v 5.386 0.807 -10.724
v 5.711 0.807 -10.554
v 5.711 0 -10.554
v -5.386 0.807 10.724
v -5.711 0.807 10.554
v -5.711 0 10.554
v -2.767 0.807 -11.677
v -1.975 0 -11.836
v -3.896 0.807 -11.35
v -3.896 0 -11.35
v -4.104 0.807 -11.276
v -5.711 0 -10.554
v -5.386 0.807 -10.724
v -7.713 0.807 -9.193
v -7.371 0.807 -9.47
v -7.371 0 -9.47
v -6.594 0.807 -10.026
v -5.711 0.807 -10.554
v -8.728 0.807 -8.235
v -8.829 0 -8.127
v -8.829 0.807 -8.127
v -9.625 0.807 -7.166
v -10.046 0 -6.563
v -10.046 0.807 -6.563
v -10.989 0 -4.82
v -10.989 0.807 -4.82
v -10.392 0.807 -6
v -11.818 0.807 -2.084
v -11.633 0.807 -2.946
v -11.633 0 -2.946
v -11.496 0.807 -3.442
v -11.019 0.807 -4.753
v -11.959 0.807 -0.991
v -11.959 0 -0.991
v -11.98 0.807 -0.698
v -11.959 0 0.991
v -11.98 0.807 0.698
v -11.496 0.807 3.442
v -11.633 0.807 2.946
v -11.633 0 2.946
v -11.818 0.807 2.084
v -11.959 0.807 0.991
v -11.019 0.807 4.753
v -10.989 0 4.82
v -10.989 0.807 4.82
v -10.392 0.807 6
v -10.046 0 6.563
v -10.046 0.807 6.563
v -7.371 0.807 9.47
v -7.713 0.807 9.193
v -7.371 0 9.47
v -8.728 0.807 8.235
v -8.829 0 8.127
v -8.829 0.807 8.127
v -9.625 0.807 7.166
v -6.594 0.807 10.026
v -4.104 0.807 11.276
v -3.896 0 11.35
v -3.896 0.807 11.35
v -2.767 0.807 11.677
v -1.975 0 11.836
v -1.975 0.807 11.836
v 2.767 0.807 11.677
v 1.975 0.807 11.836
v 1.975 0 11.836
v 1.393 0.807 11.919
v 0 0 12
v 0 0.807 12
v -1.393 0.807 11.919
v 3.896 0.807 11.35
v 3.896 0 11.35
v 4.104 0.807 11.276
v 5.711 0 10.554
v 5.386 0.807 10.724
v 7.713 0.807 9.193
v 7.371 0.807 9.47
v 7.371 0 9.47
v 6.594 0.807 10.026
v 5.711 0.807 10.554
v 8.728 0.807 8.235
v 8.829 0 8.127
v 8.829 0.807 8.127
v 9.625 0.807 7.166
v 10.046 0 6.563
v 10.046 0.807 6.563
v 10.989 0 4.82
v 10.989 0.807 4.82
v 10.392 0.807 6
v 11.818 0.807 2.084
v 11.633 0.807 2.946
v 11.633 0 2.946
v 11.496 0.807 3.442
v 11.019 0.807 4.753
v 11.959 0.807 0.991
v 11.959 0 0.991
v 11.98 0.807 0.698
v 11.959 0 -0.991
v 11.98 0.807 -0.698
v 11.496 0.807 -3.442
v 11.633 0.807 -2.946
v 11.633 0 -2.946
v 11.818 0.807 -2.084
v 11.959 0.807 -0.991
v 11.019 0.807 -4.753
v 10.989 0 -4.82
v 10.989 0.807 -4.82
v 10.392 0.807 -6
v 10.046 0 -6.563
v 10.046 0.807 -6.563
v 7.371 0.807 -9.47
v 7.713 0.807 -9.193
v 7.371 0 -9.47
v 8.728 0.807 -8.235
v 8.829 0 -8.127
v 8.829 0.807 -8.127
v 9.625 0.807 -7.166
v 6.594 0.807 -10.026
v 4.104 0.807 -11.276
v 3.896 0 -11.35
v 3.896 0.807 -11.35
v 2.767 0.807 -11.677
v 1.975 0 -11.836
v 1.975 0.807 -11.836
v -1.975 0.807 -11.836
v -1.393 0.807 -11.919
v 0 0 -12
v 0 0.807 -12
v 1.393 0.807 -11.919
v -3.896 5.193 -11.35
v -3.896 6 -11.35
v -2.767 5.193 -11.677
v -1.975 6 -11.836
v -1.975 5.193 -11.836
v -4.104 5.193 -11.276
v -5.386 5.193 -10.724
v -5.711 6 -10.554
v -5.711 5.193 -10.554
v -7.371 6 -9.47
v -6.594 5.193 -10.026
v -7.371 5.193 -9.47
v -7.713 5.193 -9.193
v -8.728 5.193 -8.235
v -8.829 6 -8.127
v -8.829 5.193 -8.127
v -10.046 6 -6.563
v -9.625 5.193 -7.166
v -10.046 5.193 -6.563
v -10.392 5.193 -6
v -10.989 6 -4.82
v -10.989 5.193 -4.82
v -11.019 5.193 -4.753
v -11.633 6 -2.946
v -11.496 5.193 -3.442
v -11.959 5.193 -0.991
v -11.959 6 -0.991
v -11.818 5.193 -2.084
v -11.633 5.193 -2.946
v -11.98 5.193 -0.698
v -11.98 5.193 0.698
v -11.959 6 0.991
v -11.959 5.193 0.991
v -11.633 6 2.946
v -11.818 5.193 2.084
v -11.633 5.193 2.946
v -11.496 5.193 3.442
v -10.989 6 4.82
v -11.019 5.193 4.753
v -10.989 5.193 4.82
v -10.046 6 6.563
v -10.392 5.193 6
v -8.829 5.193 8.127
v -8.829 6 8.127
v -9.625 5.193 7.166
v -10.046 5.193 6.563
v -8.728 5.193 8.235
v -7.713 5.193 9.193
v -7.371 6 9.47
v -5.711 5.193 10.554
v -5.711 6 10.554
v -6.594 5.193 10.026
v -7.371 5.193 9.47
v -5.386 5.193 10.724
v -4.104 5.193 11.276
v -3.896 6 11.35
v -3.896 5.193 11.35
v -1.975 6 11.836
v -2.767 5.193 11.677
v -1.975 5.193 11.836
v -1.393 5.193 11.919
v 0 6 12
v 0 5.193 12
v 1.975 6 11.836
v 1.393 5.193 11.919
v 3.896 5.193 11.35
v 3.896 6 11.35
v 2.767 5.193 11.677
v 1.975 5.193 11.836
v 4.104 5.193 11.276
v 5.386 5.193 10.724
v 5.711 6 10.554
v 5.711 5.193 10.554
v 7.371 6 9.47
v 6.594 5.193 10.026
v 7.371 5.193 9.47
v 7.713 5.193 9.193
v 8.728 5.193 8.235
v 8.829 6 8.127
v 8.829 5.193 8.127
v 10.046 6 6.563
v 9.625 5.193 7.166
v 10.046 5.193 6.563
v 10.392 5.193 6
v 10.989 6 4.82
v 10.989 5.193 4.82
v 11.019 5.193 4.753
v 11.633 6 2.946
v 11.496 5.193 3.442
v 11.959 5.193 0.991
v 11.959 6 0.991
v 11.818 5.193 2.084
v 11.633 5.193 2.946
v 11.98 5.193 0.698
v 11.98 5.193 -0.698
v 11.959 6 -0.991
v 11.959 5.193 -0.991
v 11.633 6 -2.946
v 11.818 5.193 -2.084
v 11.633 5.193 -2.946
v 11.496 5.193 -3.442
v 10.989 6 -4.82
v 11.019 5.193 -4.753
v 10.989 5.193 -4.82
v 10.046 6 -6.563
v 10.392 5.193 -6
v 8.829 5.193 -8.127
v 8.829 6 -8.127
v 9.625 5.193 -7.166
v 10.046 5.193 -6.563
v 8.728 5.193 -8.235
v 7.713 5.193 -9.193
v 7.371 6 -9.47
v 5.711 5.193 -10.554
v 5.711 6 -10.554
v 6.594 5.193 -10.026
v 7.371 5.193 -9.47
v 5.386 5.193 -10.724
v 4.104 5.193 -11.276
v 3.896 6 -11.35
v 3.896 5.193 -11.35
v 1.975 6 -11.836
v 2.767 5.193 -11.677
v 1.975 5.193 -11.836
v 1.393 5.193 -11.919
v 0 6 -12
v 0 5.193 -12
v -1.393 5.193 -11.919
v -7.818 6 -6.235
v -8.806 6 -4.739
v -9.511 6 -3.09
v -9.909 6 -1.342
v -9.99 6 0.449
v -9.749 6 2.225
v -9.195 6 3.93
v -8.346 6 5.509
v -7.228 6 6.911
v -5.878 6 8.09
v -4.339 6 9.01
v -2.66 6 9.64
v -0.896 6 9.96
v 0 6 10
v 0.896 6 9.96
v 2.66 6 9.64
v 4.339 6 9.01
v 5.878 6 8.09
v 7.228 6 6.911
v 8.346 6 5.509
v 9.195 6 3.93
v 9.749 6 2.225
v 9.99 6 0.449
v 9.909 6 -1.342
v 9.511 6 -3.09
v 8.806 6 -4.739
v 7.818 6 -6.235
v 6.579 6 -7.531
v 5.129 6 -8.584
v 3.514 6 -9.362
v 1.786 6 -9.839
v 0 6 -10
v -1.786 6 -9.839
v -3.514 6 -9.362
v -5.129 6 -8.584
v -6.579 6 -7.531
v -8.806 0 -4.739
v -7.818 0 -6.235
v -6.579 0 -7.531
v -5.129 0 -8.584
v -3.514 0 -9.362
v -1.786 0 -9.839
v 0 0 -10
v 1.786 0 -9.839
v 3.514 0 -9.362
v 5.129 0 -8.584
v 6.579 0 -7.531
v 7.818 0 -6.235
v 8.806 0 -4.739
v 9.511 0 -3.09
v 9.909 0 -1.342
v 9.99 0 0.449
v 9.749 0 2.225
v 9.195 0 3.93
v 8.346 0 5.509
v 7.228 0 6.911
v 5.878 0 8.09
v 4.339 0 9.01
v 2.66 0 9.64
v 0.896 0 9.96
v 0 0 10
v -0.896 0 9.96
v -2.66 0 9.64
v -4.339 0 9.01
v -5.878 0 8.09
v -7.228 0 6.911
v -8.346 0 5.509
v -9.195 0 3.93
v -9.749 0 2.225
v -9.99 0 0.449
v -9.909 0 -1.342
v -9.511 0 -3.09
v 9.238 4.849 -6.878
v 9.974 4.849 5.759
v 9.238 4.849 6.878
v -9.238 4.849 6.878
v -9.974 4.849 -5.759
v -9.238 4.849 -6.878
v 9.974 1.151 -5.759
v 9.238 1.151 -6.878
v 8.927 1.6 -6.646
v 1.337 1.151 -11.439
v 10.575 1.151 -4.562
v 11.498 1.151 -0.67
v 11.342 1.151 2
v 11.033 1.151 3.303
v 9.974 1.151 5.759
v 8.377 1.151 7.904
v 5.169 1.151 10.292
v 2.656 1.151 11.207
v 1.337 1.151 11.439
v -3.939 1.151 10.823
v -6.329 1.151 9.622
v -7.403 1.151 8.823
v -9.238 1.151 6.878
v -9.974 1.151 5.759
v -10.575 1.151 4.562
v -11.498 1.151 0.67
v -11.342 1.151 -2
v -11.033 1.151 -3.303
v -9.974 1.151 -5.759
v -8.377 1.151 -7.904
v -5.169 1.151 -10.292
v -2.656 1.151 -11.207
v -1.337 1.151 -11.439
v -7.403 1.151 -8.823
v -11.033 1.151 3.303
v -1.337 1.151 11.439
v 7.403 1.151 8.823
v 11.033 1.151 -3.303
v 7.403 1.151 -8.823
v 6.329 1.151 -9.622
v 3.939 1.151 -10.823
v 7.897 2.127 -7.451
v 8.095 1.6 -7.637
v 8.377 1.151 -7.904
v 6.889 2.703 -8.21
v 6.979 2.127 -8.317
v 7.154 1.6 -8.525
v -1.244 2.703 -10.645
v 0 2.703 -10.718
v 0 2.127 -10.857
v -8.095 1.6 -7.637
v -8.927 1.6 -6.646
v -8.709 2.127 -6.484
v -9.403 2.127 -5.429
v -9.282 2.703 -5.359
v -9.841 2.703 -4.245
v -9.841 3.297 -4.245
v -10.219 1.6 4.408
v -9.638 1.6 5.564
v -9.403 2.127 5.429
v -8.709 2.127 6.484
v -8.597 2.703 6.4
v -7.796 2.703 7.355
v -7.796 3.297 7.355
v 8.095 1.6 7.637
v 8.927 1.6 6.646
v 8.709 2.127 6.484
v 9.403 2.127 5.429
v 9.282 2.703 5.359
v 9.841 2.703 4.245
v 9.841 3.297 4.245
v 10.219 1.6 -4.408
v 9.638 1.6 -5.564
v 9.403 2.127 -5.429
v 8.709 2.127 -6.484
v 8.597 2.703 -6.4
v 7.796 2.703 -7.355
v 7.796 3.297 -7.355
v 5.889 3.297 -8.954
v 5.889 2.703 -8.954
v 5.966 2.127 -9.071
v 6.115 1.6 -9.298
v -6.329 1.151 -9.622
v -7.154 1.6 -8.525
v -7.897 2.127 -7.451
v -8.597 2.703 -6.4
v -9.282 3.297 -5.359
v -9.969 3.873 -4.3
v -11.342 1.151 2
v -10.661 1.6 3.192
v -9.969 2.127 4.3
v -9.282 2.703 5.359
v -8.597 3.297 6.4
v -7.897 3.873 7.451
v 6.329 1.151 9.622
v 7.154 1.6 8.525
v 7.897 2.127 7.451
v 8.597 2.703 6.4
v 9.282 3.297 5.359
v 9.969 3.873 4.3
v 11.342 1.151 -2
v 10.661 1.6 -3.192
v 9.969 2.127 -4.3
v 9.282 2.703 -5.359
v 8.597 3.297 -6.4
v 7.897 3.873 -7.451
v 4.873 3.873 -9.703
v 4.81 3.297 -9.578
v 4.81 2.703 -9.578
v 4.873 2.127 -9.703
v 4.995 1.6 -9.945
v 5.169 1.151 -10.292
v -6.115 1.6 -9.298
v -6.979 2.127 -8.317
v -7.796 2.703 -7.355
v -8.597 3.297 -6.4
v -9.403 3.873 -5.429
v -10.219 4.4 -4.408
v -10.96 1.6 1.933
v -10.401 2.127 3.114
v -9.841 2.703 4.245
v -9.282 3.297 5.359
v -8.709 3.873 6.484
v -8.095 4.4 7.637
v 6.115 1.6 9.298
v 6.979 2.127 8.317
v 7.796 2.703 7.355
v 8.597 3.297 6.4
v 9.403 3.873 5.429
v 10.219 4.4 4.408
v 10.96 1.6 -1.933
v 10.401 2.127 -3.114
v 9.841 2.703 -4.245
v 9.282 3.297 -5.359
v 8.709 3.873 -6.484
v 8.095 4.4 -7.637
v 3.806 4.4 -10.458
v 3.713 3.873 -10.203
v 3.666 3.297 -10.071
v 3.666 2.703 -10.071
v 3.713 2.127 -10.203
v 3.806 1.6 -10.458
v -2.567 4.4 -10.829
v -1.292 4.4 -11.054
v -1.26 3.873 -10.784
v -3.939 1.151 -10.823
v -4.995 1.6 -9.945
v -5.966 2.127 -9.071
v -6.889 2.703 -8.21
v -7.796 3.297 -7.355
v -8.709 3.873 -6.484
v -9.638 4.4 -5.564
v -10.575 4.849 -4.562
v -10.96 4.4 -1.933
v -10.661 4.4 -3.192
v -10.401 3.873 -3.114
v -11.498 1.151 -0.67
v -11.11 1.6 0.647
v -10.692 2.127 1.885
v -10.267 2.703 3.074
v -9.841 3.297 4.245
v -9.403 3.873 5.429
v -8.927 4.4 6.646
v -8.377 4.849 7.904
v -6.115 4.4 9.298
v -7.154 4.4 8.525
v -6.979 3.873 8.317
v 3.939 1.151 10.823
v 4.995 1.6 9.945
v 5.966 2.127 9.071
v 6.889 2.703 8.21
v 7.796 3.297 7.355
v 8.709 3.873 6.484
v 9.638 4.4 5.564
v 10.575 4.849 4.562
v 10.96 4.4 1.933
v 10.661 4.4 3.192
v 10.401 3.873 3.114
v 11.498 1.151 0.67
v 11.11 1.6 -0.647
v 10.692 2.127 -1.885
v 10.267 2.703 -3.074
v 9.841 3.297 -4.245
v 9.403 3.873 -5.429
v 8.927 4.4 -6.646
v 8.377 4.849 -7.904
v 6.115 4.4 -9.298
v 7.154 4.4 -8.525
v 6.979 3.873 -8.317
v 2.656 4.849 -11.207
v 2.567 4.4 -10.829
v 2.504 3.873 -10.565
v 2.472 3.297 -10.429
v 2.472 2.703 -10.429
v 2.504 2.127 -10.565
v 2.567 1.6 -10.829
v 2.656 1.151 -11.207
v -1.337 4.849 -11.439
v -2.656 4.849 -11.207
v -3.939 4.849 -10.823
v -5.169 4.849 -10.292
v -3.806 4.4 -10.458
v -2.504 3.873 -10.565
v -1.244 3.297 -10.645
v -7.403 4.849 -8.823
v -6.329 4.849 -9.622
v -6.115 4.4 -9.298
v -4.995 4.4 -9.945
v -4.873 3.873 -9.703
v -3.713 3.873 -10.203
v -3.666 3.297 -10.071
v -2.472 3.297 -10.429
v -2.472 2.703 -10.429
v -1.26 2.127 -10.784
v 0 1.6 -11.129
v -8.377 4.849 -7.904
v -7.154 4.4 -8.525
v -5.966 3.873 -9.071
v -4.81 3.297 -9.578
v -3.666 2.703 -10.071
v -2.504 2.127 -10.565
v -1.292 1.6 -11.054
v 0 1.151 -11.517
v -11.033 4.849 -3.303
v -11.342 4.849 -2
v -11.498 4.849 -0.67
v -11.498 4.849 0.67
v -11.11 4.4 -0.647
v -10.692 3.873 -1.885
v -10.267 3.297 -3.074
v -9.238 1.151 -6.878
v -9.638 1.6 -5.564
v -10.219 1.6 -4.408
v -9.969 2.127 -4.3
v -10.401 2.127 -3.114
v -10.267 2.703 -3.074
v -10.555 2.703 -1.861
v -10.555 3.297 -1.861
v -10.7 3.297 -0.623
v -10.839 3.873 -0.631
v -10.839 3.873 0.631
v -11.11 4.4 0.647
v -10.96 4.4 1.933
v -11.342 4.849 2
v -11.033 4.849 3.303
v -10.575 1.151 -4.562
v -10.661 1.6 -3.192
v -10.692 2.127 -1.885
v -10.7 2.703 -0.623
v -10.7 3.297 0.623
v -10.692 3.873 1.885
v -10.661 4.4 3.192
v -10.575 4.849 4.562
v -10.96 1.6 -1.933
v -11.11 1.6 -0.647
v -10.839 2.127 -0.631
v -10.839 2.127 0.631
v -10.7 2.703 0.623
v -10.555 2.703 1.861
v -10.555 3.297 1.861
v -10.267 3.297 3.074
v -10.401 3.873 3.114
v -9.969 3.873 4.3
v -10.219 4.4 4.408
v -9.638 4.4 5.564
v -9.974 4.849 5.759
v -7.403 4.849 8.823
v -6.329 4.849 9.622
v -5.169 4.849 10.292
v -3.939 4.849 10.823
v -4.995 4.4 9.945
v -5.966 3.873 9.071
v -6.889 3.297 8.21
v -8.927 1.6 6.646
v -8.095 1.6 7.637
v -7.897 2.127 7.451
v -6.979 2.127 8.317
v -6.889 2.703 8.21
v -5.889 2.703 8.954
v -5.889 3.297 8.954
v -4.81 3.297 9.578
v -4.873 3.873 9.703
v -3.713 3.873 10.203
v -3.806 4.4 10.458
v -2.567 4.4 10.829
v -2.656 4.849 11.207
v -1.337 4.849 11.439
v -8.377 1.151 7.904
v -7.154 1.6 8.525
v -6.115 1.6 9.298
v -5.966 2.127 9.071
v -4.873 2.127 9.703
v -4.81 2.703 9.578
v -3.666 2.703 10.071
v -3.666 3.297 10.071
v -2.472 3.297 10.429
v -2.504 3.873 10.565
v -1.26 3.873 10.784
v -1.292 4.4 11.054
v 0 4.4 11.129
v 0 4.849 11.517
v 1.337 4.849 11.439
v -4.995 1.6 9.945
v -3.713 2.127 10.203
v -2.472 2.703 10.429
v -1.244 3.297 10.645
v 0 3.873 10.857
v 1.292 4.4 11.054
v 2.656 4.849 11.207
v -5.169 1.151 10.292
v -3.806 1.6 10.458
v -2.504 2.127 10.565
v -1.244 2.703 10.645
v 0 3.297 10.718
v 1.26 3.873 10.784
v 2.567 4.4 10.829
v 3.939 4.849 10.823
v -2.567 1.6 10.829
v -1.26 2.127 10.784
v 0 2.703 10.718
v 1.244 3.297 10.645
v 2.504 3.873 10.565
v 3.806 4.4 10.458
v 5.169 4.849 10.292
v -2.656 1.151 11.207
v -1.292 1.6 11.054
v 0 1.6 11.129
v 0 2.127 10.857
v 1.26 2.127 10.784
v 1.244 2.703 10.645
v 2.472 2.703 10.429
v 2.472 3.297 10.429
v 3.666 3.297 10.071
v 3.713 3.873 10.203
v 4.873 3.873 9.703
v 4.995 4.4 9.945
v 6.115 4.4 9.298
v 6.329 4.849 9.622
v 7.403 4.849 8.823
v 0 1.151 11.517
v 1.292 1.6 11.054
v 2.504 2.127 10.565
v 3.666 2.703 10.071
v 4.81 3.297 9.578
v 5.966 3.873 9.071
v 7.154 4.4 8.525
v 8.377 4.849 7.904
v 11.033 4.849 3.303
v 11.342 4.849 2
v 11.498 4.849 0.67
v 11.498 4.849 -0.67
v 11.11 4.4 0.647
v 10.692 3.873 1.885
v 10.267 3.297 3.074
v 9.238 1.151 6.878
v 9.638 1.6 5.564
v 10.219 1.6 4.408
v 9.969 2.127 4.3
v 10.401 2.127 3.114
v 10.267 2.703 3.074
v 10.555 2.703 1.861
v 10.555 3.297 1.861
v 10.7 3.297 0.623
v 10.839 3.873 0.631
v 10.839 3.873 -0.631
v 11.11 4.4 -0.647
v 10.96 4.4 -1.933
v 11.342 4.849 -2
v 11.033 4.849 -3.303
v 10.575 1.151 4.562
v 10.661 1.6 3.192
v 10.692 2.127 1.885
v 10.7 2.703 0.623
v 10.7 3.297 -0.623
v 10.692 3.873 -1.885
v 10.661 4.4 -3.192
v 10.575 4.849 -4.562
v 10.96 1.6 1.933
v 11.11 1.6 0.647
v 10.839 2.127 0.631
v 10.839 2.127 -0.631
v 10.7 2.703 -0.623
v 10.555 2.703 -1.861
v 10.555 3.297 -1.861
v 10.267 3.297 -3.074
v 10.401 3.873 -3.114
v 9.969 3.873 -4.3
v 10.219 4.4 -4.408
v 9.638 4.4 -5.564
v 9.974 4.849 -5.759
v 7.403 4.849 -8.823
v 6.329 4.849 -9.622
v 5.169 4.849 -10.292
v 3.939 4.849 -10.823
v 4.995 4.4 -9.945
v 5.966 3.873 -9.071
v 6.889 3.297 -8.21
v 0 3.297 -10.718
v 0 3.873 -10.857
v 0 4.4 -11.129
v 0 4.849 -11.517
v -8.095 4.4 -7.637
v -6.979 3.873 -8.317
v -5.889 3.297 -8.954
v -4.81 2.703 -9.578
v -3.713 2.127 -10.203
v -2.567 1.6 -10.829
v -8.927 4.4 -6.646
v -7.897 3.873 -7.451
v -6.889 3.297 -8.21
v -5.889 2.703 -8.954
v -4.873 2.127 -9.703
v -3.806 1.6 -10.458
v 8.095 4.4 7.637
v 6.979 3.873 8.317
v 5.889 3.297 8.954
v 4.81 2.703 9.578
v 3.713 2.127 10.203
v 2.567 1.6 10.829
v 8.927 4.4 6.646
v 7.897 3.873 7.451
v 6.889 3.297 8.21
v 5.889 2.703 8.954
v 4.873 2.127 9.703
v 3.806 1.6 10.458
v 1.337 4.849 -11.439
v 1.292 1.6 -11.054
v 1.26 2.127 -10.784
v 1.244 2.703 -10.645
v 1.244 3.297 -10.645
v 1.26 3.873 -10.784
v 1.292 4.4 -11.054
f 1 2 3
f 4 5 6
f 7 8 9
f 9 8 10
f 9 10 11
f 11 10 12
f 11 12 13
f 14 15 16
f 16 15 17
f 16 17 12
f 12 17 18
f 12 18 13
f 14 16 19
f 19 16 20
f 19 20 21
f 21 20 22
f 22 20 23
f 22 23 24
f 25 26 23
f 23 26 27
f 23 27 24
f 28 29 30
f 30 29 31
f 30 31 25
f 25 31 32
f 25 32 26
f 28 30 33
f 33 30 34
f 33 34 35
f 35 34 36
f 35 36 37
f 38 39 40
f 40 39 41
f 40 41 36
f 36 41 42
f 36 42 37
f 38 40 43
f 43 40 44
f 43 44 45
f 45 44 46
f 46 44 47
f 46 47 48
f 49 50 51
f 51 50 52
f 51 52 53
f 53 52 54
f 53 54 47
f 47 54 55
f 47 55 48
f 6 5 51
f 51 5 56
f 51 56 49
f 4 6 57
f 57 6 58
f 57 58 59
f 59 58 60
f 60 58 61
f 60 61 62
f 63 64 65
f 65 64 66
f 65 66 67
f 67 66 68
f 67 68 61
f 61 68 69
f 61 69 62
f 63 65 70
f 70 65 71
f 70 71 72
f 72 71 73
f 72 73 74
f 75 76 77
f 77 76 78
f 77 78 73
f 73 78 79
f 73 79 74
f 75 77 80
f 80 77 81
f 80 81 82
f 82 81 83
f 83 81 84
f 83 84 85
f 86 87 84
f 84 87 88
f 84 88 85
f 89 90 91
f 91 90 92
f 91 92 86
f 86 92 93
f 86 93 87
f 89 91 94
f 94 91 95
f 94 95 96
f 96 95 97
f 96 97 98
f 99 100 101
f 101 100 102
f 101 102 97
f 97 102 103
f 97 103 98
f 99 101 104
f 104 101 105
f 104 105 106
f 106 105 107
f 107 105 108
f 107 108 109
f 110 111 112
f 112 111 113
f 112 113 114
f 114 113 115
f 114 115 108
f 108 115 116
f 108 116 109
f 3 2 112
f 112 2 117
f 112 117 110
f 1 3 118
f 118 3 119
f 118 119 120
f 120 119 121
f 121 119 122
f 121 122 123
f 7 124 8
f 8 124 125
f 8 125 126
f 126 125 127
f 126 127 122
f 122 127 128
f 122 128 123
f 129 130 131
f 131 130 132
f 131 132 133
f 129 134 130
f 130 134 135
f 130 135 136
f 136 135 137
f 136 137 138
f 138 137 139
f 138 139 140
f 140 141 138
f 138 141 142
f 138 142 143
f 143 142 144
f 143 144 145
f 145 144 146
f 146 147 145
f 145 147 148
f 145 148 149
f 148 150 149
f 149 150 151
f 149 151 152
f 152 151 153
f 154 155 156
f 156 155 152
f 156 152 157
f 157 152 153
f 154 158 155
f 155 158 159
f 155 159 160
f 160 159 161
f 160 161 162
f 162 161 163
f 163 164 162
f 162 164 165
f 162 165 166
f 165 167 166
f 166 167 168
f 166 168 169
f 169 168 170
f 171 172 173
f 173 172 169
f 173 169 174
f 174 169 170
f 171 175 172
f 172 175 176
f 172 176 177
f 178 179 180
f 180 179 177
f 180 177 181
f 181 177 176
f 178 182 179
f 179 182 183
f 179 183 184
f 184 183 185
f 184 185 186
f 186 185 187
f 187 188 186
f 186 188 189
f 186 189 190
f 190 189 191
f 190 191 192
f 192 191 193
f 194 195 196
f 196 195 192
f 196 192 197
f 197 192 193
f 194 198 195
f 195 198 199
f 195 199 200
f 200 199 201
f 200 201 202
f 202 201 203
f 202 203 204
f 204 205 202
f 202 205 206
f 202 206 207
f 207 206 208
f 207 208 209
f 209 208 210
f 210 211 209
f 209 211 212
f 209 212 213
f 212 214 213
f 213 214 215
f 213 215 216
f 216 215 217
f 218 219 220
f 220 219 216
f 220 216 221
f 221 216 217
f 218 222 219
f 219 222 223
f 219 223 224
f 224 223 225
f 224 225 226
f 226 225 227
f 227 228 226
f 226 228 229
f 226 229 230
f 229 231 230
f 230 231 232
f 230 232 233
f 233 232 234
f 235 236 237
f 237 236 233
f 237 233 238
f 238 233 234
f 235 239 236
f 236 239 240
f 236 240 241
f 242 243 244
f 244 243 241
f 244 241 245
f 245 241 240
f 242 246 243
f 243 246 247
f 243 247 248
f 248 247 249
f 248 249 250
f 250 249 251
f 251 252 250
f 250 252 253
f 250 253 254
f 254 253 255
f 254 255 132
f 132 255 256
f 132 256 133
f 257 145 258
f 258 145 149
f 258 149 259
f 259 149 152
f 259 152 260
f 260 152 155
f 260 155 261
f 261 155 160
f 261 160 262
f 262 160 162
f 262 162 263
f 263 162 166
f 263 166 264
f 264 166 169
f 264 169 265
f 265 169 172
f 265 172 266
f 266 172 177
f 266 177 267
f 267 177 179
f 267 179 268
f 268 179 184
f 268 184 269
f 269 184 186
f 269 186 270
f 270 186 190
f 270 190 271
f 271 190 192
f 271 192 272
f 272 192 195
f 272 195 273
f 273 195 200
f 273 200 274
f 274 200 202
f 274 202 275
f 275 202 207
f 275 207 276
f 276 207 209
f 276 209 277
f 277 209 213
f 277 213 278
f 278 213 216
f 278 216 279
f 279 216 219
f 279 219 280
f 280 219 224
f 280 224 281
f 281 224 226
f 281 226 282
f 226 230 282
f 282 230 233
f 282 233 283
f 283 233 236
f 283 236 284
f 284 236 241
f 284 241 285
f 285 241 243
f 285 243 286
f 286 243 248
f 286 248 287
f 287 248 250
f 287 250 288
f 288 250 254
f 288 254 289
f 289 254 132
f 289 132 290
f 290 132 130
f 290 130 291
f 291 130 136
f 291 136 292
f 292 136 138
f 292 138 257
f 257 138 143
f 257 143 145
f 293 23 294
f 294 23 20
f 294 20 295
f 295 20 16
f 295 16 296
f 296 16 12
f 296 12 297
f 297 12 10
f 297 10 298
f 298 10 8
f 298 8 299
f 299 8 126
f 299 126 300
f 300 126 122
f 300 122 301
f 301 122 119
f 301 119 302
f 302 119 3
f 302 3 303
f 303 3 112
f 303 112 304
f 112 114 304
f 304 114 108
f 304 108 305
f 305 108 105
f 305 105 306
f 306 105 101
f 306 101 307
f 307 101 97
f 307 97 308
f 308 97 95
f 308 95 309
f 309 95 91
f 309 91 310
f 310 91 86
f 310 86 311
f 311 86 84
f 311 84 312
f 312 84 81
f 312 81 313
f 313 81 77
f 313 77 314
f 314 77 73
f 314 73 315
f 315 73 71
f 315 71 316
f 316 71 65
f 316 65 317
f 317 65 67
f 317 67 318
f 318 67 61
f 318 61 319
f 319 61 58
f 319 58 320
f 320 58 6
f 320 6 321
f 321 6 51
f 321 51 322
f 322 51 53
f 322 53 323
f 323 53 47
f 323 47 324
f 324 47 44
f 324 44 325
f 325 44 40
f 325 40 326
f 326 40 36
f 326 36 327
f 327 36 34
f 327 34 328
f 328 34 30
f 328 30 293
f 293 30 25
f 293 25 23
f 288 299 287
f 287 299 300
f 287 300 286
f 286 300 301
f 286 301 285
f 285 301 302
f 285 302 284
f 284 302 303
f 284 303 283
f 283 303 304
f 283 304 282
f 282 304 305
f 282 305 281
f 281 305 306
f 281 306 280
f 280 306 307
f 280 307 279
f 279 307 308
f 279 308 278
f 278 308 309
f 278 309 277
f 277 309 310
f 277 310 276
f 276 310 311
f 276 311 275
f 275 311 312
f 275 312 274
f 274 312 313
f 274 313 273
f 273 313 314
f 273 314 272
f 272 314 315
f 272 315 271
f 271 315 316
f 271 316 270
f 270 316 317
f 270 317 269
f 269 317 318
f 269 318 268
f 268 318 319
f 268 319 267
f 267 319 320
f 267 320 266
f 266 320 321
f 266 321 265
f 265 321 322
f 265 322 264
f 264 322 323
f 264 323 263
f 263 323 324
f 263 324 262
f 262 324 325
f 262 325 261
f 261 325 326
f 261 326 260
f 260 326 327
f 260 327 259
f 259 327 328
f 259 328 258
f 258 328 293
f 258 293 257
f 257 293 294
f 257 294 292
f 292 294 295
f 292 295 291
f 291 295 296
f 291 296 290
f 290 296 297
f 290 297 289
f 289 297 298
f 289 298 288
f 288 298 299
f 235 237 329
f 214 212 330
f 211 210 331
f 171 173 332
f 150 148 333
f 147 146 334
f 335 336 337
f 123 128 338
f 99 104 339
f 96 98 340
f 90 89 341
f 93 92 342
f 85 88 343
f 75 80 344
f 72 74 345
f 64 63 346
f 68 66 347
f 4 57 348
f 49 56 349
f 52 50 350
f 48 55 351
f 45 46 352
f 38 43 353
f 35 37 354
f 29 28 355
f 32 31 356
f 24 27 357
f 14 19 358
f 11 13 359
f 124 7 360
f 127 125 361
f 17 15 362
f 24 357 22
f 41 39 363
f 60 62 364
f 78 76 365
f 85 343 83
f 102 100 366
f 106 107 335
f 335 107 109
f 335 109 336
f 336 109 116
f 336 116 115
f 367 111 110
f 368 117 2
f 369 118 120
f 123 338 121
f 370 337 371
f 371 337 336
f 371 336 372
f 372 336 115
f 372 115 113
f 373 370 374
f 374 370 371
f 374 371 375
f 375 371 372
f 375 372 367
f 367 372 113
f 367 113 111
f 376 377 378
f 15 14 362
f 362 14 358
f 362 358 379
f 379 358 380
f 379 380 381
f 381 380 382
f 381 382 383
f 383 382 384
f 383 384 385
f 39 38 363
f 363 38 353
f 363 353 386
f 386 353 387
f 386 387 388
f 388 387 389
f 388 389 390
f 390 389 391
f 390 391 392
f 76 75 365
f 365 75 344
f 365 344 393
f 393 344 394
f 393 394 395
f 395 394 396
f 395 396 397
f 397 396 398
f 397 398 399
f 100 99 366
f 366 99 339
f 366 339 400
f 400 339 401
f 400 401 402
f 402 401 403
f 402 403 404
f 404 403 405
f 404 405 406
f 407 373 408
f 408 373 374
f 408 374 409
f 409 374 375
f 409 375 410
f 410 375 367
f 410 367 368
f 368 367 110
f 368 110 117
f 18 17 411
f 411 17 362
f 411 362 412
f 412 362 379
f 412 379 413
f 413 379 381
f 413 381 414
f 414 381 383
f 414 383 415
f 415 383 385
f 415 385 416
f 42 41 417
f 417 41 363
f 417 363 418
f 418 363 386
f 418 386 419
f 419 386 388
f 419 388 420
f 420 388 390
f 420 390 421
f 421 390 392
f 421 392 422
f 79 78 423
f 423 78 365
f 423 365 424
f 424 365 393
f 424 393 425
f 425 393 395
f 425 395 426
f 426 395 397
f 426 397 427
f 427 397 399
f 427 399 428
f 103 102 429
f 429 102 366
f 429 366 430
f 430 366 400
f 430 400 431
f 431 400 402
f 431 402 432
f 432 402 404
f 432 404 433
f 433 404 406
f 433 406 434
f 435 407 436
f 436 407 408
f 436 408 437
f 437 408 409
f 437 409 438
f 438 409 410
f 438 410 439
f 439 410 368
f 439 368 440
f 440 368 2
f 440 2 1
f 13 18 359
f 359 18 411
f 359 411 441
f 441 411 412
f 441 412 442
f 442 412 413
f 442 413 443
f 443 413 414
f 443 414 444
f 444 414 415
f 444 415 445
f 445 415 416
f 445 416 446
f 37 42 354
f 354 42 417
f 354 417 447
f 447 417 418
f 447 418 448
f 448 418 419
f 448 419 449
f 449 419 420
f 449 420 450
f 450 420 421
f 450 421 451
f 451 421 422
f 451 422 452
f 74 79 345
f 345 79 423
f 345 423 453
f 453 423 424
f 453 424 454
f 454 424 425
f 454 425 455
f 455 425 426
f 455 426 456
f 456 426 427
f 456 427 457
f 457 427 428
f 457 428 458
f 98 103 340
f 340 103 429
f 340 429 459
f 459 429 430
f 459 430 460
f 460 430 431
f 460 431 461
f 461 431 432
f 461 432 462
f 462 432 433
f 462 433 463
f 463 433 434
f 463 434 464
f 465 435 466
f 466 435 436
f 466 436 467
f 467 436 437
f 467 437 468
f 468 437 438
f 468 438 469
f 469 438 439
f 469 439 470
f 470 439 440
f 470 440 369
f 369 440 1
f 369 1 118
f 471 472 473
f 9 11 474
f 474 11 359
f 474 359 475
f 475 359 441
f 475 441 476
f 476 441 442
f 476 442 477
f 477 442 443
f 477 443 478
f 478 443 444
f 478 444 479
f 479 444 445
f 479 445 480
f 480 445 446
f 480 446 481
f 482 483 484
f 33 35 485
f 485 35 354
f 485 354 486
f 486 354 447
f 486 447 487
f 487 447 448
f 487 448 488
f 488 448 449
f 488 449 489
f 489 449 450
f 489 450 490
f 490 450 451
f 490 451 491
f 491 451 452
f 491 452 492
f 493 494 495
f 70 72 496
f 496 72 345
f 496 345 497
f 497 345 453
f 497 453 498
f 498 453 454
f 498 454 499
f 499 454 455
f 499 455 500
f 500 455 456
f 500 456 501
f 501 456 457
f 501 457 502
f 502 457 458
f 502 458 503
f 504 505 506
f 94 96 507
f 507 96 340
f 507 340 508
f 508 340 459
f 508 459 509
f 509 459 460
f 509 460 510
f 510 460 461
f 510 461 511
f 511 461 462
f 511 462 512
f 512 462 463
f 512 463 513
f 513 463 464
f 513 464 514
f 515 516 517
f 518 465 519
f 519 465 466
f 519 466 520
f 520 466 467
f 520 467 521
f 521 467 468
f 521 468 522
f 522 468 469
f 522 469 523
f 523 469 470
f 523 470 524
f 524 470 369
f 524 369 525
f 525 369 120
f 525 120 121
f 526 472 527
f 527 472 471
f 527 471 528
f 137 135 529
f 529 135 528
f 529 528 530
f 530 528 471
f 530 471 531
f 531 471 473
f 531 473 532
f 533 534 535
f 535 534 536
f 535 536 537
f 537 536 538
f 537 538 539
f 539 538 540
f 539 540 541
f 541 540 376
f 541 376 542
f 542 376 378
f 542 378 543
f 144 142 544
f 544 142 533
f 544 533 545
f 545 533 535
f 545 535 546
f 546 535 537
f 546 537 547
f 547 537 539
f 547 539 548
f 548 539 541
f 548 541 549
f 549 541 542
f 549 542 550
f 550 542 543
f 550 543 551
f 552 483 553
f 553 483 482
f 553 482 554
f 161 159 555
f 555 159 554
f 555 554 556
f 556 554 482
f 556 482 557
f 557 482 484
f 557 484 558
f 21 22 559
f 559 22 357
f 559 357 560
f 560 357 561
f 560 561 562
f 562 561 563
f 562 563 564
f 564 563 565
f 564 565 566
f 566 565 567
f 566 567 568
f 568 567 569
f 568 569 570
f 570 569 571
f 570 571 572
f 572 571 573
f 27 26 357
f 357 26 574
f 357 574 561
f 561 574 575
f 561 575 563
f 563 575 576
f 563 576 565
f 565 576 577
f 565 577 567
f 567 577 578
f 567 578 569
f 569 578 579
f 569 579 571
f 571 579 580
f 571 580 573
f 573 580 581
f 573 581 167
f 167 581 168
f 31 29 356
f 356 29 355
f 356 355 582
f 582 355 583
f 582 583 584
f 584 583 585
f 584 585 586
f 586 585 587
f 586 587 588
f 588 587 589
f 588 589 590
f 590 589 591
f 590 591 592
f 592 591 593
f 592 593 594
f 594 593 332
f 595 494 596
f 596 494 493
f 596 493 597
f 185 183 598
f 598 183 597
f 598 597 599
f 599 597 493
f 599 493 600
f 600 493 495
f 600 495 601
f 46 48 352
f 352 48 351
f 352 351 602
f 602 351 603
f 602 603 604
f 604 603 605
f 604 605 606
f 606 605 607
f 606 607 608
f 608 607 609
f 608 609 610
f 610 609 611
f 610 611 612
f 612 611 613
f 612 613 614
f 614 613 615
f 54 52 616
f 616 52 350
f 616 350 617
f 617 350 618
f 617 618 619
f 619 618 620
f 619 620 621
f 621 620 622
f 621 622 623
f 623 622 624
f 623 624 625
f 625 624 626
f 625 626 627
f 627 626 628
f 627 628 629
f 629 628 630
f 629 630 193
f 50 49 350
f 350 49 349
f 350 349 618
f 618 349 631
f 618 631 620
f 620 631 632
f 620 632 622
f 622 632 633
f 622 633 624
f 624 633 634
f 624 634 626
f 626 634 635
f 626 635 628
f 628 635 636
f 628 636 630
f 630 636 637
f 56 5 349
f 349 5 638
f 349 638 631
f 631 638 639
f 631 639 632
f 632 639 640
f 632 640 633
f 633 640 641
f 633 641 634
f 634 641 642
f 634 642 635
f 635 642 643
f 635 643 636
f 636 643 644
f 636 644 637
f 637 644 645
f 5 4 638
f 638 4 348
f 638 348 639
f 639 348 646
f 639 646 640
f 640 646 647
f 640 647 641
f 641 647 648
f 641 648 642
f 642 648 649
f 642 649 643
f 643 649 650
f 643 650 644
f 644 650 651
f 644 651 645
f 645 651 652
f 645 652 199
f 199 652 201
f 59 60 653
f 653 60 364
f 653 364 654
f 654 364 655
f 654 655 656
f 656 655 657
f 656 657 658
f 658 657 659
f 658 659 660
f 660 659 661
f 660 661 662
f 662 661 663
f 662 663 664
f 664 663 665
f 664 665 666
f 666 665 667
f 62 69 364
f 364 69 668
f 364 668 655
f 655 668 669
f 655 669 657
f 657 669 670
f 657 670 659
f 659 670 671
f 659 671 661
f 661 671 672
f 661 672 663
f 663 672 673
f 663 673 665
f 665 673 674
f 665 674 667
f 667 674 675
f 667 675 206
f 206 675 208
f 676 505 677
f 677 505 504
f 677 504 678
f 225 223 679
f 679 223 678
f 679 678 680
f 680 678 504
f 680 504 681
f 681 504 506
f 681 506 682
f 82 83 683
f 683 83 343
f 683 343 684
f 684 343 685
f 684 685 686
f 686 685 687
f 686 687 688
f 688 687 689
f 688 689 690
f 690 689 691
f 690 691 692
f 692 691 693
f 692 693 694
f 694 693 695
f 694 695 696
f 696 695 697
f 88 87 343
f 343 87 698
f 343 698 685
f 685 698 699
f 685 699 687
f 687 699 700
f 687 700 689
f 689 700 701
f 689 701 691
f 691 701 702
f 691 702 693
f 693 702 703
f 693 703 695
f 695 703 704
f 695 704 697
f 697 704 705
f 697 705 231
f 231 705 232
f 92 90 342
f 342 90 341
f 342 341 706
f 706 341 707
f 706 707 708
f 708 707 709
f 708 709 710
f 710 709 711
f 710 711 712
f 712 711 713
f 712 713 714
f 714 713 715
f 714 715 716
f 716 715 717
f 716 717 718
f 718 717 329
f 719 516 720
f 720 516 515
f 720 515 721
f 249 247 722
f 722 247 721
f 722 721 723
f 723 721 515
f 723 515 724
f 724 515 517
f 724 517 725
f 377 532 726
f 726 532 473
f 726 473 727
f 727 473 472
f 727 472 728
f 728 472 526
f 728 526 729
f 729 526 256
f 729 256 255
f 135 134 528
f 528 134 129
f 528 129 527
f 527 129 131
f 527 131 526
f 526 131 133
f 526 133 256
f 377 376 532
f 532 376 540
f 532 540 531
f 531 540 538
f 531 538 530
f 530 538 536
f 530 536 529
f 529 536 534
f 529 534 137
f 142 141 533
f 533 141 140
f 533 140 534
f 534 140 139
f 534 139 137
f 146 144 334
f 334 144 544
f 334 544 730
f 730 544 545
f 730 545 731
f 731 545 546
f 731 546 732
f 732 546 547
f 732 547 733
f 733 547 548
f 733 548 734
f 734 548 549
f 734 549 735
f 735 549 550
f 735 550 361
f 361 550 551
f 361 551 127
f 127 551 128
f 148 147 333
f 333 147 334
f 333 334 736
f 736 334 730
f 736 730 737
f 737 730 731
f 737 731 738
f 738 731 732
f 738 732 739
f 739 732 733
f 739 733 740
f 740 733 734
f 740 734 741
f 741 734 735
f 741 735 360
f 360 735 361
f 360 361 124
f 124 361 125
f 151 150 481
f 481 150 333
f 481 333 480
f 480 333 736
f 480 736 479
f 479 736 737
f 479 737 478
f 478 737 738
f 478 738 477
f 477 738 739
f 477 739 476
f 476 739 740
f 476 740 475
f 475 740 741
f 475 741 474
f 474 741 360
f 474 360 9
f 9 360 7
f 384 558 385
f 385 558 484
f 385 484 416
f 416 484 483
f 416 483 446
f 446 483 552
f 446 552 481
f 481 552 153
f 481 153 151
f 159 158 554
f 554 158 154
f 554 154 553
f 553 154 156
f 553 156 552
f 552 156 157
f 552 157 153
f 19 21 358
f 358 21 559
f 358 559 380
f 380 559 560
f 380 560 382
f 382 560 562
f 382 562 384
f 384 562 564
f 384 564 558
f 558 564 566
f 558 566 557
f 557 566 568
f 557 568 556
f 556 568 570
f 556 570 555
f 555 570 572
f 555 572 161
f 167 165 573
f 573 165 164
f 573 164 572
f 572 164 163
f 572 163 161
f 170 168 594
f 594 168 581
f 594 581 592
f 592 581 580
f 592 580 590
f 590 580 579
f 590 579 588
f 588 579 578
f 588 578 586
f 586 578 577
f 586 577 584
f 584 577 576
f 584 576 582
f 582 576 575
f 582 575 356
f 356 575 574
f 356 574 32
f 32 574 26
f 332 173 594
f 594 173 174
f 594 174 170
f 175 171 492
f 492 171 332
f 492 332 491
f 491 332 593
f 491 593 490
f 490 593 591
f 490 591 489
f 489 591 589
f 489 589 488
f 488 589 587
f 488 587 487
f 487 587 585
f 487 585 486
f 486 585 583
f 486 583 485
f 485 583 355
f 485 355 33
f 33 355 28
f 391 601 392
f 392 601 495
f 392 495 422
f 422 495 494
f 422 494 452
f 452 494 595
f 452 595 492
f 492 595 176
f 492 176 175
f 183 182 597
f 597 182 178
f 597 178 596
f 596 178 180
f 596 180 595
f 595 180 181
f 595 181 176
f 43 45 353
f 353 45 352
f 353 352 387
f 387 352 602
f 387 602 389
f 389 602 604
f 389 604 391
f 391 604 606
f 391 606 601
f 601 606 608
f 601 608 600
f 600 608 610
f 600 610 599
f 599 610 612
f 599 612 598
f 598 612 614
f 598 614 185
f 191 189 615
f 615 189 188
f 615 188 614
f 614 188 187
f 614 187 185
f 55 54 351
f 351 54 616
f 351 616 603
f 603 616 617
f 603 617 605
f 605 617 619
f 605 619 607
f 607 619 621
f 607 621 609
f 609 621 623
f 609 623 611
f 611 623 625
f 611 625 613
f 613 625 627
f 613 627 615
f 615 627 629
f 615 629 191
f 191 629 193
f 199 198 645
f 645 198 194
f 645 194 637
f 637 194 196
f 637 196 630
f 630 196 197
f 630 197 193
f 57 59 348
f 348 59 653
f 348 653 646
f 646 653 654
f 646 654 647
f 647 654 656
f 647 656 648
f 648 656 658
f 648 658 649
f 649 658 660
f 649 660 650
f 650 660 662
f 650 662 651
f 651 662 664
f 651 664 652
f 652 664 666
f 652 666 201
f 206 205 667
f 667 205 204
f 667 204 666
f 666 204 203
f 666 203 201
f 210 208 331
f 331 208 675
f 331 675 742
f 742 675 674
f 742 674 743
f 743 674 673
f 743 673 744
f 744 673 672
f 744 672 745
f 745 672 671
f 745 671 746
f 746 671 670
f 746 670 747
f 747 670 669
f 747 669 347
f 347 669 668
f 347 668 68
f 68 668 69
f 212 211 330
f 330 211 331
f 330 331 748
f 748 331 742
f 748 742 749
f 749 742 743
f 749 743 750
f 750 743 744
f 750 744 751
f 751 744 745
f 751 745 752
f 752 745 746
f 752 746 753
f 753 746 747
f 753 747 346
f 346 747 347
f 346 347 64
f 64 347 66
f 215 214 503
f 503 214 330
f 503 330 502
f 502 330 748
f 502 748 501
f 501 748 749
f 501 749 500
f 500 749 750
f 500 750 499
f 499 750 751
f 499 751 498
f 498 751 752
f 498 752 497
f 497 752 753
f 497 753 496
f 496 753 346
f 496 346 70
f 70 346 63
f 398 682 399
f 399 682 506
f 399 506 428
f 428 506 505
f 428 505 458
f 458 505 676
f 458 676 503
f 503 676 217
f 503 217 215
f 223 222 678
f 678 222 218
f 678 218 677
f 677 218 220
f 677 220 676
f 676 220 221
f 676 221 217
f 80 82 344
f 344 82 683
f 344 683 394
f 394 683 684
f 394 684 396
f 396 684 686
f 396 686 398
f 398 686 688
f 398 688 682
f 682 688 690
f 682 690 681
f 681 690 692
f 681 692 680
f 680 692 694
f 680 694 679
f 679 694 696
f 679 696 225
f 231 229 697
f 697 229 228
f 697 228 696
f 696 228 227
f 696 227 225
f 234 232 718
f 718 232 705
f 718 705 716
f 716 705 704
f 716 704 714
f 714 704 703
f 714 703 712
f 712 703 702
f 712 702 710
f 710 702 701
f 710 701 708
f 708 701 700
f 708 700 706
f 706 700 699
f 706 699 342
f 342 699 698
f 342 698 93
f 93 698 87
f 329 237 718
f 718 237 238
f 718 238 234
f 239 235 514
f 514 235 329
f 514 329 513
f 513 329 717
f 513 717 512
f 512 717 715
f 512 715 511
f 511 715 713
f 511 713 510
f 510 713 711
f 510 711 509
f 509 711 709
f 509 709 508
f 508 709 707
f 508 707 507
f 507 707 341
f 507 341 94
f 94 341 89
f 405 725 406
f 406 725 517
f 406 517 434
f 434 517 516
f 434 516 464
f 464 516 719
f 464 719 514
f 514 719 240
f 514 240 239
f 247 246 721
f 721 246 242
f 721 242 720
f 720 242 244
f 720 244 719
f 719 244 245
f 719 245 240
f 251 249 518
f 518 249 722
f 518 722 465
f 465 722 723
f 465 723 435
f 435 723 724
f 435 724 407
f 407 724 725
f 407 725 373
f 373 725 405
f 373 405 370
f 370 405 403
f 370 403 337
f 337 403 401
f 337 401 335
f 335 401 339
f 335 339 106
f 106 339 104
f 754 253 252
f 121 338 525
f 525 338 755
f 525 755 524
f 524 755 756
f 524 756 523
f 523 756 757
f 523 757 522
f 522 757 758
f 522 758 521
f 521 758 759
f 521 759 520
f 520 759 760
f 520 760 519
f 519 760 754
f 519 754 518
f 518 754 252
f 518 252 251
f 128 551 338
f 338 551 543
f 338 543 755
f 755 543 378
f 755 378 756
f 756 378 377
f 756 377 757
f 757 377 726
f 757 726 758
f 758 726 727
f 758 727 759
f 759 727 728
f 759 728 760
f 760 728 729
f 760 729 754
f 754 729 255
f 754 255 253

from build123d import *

# Parameters (mm, degrees)
SKETCH1_R           = 12
SKETCH1_R_2         = 10
BOSS_EXTRUDE1_DEPTH = 6
SKETCH4_R           = 2.5


with BuildPart() as part:
    # Sketch1 → Boss-Extrude1 (new body)
    with BuildSketch(Plane(origin=(0, 0, 0), x_dir=(1, 0, 0), z_dir=(0, 1, 0))):
        Circle(SKETCH1_R)
        Circle(SKETCH1_R_2, mode=Mode.SUBTRACT)
    extrude(amount=BOSS_EXTRUDE1_DEPTH)

    # Sketch4 → Cut-Revolve2 (revolve, cut)
    with BuildSketch(Plane(origin=(0, 0, 0), x_dir=(0, 0, -1), z_dir=(1, 0, 0))):
        with Locations((-13.2, 3)):
            Circle(SKETCH4_R)
    revolve(axis=Axis((0, 0, 0), (0, 1, 0)), mode=Mode.SUBTRACT)


solid = part.part
